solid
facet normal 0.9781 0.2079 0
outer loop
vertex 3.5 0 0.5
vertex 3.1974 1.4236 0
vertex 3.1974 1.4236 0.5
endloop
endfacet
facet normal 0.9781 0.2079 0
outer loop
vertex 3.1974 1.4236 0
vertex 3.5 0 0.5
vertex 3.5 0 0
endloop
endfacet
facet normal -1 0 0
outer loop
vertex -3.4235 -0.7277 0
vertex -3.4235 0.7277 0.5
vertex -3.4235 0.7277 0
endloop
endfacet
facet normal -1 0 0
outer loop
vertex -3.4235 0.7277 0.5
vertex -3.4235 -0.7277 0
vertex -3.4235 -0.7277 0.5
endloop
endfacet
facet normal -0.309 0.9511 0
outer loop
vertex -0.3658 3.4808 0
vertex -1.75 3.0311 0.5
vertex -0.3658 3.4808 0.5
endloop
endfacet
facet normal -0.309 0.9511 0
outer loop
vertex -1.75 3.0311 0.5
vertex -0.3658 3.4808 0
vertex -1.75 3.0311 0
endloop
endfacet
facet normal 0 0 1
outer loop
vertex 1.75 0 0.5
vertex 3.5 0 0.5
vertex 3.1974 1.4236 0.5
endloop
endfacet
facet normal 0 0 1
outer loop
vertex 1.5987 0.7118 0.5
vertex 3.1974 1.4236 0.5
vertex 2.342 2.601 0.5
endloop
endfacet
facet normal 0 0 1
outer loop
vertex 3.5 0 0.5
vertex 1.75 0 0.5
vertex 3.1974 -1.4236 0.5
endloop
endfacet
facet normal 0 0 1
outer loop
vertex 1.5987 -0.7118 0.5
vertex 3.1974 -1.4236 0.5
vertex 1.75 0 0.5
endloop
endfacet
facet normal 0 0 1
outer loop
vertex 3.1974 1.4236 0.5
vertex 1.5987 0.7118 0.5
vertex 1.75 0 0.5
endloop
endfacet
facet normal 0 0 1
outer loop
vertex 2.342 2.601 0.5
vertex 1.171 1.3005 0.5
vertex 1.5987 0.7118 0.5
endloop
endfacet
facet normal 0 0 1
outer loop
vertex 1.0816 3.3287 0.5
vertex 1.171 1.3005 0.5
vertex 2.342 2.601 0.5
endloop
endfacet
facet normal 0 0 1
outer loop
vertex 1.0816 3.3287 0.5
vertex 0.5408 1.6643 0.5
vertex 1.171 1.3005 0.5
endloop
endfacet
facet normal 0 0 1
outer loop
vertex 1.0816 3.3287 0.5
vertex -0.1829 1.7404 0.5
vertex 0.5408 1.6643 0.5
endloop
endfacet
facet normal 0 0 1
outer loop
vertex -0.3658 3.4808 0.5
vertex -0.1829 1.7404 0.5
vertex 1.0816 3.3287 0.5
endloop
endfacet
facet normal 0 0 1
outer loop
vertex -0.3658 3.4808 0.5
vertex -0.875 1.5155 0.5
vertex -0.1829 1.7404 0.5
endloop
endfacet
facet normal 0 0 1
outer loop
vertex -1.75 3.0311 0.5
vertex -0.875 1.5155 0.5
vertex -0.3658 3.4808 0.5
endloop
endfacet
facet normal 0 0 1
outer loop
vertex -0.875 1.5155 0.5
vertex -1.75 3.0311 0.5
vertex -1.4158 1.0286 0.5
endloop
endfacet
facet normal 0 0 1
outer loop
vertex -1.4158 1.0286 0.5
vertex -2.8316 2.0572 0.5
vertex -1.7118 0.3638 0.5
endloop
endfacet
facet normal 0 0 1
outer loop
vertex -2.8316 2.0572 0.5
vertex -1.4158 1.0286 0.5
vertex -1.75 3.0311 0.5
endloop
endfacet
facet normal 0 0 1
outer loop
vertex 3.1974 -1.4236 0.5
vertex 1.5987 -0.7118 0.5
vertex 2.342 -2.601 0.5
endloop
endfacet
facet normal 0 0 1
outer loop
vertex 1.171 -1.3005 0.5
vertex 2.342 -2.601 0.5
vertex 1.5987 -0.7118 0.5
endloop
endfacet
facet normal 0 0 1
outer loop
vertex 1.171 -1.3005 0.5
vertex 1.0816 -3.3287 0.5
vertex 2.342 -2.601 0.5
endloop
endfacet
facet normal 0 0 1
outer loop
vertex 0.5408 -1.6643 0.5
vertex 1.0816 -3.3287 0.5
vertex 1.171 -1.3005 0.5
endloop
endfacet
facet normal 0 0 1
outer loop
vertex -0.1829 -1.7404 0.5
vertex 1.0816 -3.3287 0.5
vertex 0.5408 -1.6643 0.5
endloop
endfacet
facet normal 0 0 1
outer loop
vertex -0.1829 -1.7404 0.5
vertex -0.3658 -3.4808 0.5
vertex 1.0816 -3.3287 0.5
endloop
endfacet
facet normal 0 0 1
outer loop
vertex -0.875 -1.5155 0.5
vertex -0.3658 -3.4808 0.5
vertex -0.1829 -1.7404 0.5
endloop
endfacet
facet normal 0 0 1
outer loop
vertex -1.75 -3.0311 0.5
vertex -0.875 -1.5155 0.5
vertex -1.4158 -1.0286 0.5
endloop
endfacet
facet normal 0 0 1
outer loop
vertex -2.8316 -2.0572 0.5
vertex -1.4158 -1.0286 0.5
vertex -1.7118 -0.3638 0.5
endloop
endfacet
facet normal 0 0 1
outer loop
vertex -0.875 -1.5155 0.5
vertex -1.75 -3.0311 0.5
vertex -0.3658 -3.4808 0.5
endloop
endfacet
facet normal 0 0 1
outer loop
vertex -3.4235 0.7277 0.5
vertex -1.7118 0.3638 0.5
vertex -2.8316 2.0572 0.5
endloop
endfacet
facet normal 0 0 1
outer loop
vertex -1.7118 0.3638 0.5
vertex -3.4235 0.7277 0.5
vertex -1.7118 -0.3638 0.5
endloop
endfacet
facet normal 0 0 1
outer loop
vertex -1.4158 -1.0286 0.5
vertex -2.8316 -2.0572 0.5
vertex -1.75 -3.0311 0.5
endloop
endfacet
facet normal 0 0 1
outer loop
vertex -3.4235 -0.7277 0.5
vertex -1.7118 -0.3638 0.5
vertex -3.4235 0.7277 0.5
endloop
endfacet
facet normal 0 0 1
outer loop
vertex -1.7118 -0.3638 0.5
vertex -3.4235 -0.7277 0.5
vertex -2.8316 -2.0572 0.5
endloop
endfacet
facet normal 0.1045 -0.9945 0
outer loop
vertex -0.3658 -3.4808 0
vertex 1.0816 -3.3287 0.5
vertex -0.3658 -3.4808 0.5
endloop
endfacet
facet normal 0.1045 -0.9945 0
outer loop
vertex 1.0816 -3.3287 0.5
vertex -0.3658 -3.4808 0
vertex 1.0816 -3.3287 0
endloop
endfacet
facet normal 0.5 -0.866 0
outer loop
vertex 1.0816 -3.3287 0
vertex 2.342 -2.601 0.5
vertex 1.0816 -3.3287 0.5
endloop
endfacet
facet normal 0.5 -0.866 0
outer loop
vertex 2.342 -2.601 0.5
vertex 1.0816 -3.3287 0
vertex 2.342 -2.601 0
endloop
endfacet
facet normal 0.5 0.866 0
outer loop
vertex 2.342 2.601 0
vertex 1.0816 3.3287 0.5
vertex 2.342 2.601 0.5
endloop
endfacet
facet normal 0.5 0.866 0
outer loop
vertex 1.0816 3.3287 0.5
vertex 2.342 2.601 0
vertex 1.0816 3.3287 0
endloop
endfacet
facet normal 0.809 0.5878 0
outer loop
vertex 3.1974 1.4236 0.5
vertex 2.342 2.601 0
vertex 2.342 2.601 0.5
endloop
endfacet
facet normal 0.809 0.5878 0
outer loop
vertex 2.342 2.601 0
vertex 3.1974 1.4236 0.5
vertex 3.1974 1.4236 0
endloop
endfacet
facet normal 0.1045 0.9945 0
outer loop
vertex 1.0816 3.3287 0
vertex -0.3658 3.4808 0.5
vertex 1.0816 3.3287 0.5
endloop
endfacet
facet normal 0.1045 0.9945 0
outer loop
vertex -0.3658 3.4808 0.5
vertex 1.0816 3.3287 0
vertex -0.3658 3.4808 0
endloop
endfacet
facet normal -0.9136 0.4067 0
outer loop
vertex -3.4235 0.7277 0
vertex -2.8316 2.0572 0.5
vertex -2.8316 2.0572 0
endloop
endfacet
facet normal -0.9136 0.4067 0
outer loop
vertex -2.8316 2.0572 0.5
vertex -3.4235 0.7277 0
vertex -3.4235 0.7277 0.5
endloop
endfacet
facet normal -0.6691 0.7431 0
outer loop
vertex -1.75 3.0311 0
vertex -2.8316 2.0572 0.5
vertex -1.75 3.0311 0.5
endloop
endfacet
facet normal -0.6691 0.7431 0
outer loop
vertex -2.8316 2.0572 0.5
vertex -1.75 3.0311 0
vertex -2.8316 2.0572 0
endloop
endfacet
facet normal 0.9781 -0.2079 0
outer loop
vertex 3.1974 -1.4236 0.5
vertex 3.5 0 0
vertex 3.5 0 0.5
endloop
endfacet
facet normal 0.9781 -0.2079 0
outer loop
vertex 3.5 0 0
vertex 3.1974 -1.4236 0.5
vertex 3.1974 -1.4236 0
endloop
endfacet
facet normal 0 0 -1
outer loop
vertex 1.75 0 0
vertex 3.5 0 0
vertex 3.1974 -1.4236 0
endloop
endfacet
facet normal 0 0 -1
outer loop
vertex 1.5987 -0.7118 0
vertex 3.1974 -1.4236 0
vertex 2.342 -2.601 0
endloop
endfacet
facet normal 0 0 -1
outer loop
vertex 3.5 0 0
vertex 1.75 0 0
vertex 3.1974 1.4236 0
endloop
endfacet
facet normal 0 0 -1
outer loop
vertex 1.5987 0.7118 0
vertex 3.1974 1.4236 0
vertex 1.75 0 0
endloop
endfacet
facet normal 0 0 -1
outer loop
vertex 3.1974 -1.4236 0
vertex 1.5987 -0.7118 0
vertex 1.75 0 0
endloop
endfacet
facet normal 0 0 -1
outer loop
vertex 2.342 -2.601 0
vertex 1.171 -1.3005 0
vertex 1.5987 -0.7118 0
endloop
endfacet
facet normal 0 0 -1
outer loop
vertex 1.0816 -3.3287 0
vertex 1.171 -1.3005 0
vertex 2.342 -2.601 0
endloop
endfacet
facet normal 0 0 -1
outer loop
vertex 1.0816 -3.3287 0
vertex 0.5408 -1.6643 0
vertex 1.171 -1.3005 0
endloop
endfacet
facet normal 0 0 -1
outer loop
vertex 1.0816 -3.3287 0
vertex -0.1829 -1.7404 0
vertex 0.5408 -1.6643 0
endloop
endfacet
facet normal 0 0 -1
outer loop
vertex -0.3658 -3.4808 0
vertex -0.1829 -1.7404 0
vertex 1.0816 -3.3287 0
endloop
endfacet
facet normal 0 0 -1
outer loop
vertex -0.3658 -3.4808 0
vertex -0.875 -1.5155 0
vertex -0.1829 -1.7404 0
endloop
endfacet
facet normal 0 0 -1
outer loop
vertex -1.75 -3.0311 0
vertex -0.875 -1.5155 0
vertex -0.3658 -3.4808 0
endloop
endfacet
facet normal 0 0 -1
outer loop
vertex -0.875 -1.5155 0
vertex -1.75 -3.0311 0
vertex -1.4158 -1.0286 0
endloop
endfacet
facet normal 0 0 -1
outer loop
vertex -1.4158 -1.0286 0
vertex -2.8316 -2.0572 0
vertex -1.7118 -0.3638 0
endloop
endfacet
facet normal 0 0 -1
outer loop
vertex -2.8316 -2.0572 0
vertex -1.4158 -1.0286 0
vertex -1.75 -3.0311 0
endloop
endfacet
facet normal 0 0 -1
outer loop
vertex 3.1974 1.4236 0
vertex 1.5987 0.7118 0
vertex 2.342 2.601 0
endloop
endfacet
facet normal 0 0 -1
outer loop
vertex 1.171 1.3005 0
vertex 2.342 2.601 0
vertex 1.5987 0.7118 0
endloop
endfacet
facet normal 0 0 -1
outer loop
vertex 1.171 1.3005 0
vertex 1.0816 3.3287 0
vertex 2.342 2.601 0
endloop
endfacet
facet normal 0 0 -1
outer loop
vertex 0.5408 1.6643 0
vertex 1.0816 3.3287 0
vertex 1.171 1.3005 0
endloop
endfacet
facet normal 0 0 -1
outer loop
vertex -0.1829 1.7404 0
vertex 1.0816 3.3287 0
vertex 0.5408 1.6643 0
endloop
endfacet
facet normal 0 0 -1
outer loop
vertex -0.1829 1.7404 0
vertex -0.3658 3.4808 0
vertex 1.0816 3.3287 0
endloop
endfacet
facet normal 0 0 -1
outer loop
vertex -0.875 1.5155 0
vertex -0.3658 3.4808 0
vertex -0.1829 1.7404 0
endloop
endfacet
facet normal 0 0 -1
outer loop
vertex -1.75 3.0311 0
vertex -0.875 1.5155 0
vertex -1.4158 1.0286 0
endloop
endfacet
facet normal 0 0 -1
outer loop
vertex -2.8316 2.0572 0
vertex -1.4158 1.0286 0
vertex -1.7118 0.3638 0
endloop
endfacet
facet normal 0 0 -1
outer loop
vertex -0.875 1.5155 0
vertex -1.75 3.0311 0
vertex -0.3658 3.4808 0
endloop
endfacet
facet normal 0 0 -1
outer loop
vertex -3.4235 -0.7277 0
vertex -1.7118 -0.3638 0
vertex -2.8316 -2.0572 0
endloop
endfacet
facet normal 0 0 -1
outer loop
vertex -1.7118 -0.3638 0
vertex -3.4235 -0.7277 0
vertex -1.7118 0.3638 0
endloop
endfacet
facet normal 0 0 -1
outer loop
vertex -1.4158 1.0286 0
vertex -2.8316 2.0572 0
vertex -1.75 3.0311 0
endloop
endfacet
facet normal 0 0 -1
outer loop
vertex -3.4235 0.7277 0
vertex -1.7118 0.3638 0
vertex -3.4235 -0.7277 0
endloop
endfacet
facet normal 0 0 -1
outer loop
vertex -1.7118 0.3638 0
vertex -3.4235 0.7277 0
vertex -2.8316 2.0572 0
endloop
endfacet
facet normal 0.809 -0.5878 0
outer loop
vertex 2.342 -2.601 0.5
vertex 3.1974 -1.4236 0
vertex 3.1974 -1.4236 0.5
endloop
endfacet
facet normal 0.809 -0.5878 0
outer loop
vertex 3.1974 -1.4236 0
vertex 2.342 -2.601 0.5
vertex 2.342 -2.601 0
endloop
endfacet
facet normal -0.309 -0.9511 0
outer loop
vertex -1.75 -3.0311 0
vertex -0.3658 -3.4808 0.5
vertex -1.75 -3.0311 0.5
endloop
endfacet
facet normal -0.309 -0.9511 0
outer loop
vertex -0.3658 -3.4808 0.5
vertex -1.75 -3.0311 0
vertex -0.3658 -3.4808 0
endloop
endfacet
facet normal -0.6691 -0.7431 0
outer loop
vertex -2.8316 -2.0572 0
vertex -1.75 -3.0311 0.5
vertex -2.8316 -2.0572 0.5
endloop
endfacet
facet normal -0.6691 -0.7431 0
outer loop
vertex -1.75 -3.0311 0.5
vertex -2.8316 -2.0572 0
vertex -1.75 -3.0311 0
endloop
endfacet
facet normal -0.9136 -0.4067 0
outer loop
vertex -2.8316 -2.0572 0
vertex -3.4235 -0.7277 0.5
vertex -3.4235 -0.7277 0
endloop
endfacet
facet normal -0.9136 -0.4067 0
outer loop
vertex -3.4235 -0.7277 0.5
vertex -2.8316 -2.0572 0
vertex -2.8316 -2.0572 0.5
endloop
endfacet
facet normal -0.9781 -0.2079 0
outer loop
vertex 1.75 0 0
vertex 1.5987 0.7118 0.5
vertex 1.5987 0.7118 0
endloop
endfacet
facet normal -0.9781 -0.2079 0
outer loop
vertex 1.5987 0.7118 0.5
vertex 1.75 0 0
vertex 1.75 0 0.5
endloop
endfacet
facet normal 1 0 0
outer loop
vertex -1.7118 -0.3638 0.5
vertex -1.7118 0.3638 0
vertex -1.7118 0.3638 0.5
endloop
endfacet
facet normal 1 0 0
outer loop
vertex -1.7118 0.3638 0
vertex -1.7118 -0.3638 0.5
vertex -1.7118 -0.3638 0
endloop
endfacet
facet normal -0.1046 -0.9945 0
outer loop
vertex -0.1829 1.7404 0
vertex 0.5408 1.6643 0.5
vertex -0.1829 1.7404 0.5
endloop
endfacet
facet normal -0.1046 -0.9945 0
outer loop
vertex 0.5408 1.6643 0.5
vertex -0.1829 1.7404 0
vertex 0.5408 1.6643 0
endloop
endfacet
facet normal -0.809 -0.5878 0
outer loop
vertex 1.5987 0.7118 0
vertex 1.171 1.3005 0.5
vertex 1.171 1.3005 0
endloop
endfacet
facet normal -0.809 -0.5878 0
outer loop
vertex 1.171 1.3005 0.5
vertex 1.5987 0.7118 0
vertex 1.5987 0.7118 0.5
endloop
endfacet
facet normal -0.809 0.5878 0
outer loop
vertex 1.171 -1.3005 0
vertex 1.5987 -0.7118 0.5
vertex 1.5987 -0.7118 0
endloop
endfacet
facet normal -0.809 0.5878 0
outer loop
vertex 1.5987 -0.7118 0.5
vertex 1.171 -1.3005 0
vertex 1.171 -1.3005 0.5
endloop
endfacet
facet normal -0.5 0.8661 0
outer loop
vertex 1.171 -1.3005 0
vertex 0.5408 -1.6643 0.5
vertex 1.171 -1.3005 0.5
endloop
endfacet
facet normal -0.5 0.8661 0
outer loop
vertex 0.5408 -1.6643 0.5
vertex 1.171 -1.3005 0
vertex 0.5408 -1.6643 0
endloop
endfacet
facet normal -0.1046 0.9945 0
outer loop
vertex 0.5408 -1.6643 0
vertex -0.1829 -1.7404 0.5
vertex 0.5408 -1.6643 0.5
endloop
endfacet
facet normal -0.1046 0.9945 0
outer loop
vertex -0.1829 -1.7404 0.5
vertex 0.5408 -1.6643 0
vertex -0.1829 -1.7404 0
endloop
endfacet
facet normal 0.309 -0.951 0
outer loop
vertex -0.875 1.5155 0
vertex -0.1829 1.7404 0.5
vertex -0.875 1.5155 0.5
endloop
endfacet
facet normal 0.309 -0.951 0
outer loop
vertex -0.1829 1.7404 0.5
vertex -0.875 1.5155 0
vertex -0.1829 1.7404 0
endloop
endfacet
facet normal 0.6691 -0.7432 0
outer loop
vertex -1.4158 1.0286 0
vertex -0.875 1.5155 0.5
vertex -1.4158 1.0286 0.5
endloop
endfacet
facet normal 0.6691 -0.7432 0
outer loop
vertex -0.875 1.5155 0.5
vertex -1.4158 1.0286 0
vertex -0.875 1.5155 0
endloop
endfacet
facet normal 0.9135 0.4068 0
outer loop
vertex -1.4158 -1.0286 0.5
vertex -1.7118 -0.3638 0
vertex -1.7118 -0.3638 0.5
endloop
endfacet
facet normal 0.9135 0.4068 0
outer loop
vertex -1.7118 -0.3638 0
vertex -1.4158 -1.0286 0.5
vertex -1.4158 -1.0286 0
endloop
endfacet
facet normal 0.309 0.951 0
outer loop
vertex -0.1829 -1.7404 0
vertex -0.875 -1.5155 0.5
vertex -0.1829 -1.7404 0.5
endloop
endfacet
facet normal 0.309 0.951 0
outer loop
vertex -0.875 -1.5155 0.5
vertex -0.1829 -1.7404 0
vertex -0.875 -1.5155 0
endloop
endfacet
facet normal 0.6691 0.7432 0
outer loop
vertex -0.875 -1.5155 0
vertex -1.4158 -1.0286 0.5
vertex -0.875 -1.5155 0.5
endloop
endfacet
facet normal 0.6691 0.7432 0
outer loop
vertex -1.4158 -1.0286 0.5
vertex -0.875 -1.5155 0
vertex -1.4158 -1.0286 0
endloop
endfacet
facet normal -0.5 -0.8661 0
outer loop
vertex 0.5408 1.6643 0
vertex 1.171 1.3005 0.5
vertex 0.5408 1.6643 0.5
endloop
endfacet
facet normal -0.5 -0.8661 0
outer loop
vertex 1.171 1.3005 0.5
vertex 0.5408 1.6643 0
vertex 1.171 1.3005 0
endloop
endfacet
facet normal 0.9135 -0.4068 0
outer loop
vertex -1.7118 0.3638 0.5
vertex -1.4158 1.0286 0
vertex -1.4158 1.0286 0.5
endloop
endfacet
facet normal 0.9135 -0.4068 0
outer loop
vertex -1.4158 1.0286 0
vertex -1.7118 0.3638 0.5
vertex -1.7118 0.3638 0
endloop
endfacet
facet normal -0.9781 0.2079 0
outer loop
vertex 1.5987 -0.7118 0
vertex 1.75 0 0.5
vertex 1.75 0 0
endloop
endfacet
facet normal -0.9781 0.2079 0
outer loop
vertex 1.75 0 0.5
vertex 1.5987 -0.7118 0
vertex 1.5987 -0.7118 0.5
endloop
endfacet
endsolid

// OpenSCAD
$fn = 15;

washer();


module washer() {
    difference(){
        cylinder(h=0.5, r=3.5);
            cylinder(h=0.5, r=1.75);
        
    };
}
